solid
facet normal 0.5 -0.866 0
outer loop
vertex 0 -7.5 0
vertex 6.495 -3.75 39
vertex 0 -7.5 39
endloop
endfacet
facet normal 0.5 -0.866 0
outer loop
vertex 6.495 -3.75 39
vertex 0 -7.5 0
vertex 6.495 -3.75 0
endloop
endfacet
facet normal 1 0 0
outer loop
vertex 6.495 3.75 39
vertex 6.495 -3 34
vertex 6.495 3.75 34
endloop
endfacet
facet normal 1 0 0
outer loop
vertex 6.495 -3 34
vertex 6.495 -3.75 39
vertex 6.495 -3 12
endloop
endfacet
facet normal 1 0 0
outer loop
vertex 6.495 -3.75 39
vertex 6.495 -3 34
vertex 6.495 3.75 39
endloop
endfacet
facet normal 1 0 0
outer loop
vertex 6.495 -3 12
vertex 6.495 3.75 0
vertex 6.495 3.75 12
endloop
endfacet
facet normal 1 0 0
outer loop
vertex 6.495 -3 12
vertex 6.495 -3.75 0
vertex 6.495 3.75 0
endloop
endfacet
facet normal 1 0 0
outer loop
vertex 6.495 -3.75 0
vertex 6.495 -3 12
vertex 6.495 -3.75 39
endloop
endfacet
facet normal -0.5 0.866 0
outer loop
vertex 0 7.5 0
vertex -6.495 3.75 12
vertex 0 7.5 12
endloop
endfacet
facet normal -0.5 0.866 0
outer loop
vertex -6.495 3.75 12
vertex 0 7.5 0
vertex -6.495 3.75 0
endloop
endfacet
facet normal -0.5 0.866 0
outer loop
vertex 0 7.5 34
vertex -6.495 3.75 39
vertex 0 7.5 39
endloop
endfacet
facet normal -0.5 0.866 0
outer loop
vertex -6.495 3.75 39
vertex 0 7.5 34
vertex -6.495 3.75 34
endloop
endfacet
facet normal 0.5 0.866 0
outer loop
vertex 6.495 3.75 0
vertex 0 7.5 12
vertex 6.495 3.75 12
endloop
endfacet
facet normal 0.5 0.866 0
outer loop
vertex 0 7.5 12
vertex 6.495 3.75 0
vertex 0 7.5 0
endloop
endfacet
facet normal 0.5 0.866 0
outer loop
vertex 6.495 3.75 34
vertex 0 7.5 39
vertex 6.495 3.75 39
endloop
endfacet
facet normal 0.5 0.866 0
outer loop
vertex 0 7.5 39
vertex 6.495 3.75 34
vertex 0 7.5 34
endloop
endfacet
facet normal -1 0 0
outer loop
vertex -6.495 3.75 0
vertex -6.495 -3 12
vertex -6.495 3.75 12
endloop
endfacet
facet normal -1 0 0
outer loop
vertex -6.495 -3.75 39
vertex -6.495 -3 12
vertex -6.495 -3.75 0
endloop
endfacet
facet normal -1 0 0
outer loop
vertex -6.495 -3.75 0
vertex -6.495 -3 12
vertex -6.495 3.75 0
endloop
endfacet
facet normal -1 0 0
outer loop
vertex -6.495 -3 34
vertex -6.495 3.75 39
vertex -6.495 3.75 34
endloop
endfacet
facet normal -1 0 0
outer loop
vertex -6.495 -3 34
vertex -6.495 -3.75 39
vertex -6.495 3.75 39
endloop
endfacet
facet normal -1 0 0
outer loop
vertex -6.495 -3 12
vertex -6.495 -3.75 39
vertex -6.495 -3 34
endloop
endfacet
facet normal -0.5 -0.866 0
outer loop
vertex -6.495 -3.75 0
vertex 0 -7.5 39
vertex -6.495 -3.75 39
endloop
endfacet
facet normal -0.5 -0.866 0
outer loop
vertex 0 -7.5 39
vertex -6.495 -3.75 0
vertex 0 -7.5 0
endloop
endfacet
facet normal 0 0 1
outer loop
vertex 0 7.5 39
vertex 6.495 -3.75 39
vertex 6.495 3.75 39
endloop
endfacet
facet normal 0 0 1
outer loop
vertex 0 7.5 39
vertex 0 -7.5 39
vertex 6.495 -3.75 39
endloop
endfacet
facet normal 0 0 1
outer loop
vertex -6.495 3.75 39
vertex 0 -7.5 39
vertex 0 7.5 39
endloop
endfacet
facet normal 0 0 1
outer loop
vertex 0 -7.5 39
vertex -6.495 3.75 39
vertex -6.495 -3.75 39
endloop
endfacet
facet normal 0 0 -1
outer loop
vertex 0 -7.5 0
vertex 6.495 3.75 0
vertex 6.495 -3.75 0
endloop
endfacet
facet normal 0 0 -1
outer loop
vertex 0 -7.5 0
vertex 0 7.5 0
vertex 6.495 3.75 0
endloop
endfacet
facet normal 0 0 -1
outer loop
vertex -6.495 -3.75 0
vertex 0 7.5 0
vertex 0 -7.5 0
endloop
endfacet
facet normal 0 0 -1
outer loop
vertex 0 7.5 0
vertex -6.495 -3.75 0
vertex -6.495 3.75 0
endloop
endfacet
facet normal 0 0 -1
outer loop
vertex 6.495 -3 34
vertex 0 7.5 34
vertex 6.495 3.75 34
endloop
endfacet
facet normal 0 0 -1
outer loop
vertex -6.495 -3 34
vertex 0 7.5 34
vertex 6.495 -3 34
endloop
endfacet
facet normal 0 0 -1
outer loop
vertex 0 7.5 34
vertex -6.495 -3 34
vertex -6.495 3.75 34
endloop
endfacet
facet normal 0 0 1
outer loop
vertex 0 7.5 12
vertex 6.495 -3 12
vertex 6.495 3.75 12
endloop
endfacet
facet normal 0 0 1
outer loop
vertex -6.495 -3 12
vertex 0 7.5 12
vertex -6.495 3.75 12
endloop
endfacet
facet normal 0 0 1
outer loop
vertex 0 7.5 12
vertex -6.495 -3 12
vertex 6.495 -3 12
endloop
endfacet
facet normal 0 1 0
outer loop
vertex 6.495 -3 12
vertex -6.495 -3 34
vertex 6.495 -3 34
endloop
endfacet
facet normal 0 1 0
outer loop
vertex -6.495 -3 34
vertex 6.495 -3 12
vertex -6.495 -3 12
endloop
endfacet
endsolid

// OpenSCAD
length_inner = 12;
length_outer = 5;
length_center = 22;
length_total = length_center+length_outer+length_inner;

deep_offset = 3;

difference() {
translate([0,0,length_total/2]) {
    rotate([0,0,30]) {
  cylinder(r=15.0/2, h=length_total, center=true, $fn=6);
    }
}


translate([0,40/2-deep_offset,length_center/2+length_inner]) {
  cube([40, 40, length_center], center=true);
}


}
